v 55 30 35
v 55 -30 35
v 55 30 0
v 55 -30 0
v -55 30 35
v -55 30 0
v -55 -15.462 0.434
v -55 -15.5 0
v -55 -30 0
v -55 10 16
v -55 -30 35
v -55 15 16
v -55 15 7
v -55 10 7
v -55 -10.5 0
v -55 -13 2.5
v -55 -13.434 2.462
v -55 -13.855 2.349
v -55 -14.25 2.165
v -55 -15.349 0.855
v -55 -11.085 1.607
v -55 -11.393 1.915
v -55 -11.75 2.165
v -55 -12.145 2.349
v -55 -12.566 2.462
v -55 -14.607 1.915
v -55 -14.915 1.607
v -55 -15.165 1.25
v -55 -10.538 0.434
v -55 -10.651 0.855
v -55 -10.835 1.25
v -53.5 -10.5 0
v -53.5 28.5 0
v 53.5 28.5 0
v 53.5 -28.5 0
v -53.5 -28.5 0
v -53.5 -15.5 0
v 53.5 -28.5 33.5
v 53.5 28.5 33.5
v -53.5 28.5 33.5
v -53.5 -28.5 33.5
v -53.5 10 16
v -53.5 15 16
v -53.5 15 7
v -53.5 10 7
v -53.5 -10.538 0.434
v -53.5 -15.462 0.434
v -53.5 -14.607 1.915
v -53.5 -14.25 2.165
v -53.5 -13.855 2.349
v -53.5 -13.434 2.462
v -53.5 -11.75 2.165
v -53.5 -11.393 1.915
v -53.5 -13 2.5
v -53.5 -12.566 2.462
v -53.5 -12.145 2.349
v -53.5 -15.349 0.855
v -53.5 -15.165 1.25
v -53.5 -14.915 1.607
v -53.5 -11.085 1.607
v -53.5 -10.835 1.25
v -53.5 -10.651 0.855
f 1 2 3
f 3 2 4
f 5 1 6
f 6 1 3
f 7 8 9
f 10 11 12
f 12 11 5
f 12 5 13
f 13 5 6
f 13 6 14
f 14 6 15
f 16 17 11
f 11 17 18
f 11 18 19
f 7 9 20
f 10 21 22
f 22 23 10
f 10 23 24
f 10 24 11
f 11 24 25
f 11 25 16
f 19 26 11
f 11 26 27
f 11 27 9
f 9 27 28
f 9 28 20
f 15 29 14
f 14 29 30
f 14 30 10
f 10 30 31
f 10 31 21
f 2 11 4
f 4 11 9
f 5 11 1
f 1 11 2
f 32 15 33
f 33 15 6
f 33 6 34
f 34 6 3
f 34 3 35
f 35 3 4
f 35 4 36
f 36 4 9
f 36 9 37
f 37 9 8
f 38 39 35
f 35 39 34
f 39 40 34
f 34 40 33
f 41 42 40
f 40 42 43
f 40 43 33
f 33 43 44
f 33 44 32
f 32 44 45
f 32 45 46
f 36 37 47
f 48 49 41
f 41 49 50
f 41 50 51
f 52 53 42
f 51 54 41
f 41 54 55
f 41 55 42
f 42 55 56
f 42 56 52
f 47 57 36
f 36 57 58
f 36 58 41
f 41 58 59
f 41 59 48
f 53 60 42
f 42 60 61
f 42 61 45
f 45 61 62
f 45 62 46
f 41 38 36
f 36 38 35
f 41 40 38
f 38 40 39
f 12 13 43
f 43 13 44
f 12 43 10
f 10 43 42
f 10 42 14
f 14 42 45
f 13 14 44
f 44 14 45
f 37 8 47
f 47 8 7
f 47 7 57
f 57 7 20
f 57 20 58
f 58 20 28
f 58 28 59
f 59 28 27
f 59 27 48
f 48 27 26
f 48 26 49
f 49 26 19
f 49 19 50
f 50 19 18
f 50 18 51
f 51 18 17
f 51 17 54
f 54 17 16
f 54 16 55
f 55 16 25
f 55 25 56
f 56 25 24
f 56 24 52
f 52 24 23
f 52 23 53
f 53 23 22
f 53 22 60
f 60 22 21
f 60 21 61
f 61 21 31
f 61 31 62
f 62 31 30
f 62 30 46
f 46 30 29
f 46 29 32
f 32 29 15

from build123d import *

# Parameters (mm, degrees)
SKIZZE1_W                       = 110
SKIZZE1_H                       = 60
AUFSATZ_LINEAR_AUSTRAGEN1_DEPTH = 35
SCHALE1_T                       = -1.5
SKIZZE3_W                       = 9
SKIZZE3_H                       = 5
SCHNITT_LINEAR_AUSTRAGEN1_DEPTH = 35


with BuildPart() as part:
    # Skizze1 → Aufsatz-Linear austragen1 (new body)
    with BuildSketch(Plane.XY):
        Rectangle(SKIZZE1_W, SKIZZE1_H)
    extrude(amount=AUFSATZ_LINEAR_AUSTRAGEN1_DEPTH)

    # Schale1
    schale1_openings = [part.faces().sort_by_distance(p)[0] for p in [
        (0, 0, 0),
    ]]
    offset(amount=SCHALE1_T, openings=schale1_openings, kind=Kind.INTERSECTION)

    # Skizze3 → Schnitt-Linear austragen1 (cut)
    with BuildSketch(Plane.ZY.offset(55)):
        with BuildLine():
            Line((0, -10.5), (0, -15.5))
            ThreePointArc((0, -15.5), (2.5, -13), (0, -10.5))
        make_face()
        with Locations((11.5, 12.5)):
            Rectangle(SKIZZE3_W, SKIZZE3_H)
    extrude(amount=-SCHNITT_LINEAR_AUSTRAGEN1_DEPTH, mode=Mode.SUBTRACT)


solid = part.part
